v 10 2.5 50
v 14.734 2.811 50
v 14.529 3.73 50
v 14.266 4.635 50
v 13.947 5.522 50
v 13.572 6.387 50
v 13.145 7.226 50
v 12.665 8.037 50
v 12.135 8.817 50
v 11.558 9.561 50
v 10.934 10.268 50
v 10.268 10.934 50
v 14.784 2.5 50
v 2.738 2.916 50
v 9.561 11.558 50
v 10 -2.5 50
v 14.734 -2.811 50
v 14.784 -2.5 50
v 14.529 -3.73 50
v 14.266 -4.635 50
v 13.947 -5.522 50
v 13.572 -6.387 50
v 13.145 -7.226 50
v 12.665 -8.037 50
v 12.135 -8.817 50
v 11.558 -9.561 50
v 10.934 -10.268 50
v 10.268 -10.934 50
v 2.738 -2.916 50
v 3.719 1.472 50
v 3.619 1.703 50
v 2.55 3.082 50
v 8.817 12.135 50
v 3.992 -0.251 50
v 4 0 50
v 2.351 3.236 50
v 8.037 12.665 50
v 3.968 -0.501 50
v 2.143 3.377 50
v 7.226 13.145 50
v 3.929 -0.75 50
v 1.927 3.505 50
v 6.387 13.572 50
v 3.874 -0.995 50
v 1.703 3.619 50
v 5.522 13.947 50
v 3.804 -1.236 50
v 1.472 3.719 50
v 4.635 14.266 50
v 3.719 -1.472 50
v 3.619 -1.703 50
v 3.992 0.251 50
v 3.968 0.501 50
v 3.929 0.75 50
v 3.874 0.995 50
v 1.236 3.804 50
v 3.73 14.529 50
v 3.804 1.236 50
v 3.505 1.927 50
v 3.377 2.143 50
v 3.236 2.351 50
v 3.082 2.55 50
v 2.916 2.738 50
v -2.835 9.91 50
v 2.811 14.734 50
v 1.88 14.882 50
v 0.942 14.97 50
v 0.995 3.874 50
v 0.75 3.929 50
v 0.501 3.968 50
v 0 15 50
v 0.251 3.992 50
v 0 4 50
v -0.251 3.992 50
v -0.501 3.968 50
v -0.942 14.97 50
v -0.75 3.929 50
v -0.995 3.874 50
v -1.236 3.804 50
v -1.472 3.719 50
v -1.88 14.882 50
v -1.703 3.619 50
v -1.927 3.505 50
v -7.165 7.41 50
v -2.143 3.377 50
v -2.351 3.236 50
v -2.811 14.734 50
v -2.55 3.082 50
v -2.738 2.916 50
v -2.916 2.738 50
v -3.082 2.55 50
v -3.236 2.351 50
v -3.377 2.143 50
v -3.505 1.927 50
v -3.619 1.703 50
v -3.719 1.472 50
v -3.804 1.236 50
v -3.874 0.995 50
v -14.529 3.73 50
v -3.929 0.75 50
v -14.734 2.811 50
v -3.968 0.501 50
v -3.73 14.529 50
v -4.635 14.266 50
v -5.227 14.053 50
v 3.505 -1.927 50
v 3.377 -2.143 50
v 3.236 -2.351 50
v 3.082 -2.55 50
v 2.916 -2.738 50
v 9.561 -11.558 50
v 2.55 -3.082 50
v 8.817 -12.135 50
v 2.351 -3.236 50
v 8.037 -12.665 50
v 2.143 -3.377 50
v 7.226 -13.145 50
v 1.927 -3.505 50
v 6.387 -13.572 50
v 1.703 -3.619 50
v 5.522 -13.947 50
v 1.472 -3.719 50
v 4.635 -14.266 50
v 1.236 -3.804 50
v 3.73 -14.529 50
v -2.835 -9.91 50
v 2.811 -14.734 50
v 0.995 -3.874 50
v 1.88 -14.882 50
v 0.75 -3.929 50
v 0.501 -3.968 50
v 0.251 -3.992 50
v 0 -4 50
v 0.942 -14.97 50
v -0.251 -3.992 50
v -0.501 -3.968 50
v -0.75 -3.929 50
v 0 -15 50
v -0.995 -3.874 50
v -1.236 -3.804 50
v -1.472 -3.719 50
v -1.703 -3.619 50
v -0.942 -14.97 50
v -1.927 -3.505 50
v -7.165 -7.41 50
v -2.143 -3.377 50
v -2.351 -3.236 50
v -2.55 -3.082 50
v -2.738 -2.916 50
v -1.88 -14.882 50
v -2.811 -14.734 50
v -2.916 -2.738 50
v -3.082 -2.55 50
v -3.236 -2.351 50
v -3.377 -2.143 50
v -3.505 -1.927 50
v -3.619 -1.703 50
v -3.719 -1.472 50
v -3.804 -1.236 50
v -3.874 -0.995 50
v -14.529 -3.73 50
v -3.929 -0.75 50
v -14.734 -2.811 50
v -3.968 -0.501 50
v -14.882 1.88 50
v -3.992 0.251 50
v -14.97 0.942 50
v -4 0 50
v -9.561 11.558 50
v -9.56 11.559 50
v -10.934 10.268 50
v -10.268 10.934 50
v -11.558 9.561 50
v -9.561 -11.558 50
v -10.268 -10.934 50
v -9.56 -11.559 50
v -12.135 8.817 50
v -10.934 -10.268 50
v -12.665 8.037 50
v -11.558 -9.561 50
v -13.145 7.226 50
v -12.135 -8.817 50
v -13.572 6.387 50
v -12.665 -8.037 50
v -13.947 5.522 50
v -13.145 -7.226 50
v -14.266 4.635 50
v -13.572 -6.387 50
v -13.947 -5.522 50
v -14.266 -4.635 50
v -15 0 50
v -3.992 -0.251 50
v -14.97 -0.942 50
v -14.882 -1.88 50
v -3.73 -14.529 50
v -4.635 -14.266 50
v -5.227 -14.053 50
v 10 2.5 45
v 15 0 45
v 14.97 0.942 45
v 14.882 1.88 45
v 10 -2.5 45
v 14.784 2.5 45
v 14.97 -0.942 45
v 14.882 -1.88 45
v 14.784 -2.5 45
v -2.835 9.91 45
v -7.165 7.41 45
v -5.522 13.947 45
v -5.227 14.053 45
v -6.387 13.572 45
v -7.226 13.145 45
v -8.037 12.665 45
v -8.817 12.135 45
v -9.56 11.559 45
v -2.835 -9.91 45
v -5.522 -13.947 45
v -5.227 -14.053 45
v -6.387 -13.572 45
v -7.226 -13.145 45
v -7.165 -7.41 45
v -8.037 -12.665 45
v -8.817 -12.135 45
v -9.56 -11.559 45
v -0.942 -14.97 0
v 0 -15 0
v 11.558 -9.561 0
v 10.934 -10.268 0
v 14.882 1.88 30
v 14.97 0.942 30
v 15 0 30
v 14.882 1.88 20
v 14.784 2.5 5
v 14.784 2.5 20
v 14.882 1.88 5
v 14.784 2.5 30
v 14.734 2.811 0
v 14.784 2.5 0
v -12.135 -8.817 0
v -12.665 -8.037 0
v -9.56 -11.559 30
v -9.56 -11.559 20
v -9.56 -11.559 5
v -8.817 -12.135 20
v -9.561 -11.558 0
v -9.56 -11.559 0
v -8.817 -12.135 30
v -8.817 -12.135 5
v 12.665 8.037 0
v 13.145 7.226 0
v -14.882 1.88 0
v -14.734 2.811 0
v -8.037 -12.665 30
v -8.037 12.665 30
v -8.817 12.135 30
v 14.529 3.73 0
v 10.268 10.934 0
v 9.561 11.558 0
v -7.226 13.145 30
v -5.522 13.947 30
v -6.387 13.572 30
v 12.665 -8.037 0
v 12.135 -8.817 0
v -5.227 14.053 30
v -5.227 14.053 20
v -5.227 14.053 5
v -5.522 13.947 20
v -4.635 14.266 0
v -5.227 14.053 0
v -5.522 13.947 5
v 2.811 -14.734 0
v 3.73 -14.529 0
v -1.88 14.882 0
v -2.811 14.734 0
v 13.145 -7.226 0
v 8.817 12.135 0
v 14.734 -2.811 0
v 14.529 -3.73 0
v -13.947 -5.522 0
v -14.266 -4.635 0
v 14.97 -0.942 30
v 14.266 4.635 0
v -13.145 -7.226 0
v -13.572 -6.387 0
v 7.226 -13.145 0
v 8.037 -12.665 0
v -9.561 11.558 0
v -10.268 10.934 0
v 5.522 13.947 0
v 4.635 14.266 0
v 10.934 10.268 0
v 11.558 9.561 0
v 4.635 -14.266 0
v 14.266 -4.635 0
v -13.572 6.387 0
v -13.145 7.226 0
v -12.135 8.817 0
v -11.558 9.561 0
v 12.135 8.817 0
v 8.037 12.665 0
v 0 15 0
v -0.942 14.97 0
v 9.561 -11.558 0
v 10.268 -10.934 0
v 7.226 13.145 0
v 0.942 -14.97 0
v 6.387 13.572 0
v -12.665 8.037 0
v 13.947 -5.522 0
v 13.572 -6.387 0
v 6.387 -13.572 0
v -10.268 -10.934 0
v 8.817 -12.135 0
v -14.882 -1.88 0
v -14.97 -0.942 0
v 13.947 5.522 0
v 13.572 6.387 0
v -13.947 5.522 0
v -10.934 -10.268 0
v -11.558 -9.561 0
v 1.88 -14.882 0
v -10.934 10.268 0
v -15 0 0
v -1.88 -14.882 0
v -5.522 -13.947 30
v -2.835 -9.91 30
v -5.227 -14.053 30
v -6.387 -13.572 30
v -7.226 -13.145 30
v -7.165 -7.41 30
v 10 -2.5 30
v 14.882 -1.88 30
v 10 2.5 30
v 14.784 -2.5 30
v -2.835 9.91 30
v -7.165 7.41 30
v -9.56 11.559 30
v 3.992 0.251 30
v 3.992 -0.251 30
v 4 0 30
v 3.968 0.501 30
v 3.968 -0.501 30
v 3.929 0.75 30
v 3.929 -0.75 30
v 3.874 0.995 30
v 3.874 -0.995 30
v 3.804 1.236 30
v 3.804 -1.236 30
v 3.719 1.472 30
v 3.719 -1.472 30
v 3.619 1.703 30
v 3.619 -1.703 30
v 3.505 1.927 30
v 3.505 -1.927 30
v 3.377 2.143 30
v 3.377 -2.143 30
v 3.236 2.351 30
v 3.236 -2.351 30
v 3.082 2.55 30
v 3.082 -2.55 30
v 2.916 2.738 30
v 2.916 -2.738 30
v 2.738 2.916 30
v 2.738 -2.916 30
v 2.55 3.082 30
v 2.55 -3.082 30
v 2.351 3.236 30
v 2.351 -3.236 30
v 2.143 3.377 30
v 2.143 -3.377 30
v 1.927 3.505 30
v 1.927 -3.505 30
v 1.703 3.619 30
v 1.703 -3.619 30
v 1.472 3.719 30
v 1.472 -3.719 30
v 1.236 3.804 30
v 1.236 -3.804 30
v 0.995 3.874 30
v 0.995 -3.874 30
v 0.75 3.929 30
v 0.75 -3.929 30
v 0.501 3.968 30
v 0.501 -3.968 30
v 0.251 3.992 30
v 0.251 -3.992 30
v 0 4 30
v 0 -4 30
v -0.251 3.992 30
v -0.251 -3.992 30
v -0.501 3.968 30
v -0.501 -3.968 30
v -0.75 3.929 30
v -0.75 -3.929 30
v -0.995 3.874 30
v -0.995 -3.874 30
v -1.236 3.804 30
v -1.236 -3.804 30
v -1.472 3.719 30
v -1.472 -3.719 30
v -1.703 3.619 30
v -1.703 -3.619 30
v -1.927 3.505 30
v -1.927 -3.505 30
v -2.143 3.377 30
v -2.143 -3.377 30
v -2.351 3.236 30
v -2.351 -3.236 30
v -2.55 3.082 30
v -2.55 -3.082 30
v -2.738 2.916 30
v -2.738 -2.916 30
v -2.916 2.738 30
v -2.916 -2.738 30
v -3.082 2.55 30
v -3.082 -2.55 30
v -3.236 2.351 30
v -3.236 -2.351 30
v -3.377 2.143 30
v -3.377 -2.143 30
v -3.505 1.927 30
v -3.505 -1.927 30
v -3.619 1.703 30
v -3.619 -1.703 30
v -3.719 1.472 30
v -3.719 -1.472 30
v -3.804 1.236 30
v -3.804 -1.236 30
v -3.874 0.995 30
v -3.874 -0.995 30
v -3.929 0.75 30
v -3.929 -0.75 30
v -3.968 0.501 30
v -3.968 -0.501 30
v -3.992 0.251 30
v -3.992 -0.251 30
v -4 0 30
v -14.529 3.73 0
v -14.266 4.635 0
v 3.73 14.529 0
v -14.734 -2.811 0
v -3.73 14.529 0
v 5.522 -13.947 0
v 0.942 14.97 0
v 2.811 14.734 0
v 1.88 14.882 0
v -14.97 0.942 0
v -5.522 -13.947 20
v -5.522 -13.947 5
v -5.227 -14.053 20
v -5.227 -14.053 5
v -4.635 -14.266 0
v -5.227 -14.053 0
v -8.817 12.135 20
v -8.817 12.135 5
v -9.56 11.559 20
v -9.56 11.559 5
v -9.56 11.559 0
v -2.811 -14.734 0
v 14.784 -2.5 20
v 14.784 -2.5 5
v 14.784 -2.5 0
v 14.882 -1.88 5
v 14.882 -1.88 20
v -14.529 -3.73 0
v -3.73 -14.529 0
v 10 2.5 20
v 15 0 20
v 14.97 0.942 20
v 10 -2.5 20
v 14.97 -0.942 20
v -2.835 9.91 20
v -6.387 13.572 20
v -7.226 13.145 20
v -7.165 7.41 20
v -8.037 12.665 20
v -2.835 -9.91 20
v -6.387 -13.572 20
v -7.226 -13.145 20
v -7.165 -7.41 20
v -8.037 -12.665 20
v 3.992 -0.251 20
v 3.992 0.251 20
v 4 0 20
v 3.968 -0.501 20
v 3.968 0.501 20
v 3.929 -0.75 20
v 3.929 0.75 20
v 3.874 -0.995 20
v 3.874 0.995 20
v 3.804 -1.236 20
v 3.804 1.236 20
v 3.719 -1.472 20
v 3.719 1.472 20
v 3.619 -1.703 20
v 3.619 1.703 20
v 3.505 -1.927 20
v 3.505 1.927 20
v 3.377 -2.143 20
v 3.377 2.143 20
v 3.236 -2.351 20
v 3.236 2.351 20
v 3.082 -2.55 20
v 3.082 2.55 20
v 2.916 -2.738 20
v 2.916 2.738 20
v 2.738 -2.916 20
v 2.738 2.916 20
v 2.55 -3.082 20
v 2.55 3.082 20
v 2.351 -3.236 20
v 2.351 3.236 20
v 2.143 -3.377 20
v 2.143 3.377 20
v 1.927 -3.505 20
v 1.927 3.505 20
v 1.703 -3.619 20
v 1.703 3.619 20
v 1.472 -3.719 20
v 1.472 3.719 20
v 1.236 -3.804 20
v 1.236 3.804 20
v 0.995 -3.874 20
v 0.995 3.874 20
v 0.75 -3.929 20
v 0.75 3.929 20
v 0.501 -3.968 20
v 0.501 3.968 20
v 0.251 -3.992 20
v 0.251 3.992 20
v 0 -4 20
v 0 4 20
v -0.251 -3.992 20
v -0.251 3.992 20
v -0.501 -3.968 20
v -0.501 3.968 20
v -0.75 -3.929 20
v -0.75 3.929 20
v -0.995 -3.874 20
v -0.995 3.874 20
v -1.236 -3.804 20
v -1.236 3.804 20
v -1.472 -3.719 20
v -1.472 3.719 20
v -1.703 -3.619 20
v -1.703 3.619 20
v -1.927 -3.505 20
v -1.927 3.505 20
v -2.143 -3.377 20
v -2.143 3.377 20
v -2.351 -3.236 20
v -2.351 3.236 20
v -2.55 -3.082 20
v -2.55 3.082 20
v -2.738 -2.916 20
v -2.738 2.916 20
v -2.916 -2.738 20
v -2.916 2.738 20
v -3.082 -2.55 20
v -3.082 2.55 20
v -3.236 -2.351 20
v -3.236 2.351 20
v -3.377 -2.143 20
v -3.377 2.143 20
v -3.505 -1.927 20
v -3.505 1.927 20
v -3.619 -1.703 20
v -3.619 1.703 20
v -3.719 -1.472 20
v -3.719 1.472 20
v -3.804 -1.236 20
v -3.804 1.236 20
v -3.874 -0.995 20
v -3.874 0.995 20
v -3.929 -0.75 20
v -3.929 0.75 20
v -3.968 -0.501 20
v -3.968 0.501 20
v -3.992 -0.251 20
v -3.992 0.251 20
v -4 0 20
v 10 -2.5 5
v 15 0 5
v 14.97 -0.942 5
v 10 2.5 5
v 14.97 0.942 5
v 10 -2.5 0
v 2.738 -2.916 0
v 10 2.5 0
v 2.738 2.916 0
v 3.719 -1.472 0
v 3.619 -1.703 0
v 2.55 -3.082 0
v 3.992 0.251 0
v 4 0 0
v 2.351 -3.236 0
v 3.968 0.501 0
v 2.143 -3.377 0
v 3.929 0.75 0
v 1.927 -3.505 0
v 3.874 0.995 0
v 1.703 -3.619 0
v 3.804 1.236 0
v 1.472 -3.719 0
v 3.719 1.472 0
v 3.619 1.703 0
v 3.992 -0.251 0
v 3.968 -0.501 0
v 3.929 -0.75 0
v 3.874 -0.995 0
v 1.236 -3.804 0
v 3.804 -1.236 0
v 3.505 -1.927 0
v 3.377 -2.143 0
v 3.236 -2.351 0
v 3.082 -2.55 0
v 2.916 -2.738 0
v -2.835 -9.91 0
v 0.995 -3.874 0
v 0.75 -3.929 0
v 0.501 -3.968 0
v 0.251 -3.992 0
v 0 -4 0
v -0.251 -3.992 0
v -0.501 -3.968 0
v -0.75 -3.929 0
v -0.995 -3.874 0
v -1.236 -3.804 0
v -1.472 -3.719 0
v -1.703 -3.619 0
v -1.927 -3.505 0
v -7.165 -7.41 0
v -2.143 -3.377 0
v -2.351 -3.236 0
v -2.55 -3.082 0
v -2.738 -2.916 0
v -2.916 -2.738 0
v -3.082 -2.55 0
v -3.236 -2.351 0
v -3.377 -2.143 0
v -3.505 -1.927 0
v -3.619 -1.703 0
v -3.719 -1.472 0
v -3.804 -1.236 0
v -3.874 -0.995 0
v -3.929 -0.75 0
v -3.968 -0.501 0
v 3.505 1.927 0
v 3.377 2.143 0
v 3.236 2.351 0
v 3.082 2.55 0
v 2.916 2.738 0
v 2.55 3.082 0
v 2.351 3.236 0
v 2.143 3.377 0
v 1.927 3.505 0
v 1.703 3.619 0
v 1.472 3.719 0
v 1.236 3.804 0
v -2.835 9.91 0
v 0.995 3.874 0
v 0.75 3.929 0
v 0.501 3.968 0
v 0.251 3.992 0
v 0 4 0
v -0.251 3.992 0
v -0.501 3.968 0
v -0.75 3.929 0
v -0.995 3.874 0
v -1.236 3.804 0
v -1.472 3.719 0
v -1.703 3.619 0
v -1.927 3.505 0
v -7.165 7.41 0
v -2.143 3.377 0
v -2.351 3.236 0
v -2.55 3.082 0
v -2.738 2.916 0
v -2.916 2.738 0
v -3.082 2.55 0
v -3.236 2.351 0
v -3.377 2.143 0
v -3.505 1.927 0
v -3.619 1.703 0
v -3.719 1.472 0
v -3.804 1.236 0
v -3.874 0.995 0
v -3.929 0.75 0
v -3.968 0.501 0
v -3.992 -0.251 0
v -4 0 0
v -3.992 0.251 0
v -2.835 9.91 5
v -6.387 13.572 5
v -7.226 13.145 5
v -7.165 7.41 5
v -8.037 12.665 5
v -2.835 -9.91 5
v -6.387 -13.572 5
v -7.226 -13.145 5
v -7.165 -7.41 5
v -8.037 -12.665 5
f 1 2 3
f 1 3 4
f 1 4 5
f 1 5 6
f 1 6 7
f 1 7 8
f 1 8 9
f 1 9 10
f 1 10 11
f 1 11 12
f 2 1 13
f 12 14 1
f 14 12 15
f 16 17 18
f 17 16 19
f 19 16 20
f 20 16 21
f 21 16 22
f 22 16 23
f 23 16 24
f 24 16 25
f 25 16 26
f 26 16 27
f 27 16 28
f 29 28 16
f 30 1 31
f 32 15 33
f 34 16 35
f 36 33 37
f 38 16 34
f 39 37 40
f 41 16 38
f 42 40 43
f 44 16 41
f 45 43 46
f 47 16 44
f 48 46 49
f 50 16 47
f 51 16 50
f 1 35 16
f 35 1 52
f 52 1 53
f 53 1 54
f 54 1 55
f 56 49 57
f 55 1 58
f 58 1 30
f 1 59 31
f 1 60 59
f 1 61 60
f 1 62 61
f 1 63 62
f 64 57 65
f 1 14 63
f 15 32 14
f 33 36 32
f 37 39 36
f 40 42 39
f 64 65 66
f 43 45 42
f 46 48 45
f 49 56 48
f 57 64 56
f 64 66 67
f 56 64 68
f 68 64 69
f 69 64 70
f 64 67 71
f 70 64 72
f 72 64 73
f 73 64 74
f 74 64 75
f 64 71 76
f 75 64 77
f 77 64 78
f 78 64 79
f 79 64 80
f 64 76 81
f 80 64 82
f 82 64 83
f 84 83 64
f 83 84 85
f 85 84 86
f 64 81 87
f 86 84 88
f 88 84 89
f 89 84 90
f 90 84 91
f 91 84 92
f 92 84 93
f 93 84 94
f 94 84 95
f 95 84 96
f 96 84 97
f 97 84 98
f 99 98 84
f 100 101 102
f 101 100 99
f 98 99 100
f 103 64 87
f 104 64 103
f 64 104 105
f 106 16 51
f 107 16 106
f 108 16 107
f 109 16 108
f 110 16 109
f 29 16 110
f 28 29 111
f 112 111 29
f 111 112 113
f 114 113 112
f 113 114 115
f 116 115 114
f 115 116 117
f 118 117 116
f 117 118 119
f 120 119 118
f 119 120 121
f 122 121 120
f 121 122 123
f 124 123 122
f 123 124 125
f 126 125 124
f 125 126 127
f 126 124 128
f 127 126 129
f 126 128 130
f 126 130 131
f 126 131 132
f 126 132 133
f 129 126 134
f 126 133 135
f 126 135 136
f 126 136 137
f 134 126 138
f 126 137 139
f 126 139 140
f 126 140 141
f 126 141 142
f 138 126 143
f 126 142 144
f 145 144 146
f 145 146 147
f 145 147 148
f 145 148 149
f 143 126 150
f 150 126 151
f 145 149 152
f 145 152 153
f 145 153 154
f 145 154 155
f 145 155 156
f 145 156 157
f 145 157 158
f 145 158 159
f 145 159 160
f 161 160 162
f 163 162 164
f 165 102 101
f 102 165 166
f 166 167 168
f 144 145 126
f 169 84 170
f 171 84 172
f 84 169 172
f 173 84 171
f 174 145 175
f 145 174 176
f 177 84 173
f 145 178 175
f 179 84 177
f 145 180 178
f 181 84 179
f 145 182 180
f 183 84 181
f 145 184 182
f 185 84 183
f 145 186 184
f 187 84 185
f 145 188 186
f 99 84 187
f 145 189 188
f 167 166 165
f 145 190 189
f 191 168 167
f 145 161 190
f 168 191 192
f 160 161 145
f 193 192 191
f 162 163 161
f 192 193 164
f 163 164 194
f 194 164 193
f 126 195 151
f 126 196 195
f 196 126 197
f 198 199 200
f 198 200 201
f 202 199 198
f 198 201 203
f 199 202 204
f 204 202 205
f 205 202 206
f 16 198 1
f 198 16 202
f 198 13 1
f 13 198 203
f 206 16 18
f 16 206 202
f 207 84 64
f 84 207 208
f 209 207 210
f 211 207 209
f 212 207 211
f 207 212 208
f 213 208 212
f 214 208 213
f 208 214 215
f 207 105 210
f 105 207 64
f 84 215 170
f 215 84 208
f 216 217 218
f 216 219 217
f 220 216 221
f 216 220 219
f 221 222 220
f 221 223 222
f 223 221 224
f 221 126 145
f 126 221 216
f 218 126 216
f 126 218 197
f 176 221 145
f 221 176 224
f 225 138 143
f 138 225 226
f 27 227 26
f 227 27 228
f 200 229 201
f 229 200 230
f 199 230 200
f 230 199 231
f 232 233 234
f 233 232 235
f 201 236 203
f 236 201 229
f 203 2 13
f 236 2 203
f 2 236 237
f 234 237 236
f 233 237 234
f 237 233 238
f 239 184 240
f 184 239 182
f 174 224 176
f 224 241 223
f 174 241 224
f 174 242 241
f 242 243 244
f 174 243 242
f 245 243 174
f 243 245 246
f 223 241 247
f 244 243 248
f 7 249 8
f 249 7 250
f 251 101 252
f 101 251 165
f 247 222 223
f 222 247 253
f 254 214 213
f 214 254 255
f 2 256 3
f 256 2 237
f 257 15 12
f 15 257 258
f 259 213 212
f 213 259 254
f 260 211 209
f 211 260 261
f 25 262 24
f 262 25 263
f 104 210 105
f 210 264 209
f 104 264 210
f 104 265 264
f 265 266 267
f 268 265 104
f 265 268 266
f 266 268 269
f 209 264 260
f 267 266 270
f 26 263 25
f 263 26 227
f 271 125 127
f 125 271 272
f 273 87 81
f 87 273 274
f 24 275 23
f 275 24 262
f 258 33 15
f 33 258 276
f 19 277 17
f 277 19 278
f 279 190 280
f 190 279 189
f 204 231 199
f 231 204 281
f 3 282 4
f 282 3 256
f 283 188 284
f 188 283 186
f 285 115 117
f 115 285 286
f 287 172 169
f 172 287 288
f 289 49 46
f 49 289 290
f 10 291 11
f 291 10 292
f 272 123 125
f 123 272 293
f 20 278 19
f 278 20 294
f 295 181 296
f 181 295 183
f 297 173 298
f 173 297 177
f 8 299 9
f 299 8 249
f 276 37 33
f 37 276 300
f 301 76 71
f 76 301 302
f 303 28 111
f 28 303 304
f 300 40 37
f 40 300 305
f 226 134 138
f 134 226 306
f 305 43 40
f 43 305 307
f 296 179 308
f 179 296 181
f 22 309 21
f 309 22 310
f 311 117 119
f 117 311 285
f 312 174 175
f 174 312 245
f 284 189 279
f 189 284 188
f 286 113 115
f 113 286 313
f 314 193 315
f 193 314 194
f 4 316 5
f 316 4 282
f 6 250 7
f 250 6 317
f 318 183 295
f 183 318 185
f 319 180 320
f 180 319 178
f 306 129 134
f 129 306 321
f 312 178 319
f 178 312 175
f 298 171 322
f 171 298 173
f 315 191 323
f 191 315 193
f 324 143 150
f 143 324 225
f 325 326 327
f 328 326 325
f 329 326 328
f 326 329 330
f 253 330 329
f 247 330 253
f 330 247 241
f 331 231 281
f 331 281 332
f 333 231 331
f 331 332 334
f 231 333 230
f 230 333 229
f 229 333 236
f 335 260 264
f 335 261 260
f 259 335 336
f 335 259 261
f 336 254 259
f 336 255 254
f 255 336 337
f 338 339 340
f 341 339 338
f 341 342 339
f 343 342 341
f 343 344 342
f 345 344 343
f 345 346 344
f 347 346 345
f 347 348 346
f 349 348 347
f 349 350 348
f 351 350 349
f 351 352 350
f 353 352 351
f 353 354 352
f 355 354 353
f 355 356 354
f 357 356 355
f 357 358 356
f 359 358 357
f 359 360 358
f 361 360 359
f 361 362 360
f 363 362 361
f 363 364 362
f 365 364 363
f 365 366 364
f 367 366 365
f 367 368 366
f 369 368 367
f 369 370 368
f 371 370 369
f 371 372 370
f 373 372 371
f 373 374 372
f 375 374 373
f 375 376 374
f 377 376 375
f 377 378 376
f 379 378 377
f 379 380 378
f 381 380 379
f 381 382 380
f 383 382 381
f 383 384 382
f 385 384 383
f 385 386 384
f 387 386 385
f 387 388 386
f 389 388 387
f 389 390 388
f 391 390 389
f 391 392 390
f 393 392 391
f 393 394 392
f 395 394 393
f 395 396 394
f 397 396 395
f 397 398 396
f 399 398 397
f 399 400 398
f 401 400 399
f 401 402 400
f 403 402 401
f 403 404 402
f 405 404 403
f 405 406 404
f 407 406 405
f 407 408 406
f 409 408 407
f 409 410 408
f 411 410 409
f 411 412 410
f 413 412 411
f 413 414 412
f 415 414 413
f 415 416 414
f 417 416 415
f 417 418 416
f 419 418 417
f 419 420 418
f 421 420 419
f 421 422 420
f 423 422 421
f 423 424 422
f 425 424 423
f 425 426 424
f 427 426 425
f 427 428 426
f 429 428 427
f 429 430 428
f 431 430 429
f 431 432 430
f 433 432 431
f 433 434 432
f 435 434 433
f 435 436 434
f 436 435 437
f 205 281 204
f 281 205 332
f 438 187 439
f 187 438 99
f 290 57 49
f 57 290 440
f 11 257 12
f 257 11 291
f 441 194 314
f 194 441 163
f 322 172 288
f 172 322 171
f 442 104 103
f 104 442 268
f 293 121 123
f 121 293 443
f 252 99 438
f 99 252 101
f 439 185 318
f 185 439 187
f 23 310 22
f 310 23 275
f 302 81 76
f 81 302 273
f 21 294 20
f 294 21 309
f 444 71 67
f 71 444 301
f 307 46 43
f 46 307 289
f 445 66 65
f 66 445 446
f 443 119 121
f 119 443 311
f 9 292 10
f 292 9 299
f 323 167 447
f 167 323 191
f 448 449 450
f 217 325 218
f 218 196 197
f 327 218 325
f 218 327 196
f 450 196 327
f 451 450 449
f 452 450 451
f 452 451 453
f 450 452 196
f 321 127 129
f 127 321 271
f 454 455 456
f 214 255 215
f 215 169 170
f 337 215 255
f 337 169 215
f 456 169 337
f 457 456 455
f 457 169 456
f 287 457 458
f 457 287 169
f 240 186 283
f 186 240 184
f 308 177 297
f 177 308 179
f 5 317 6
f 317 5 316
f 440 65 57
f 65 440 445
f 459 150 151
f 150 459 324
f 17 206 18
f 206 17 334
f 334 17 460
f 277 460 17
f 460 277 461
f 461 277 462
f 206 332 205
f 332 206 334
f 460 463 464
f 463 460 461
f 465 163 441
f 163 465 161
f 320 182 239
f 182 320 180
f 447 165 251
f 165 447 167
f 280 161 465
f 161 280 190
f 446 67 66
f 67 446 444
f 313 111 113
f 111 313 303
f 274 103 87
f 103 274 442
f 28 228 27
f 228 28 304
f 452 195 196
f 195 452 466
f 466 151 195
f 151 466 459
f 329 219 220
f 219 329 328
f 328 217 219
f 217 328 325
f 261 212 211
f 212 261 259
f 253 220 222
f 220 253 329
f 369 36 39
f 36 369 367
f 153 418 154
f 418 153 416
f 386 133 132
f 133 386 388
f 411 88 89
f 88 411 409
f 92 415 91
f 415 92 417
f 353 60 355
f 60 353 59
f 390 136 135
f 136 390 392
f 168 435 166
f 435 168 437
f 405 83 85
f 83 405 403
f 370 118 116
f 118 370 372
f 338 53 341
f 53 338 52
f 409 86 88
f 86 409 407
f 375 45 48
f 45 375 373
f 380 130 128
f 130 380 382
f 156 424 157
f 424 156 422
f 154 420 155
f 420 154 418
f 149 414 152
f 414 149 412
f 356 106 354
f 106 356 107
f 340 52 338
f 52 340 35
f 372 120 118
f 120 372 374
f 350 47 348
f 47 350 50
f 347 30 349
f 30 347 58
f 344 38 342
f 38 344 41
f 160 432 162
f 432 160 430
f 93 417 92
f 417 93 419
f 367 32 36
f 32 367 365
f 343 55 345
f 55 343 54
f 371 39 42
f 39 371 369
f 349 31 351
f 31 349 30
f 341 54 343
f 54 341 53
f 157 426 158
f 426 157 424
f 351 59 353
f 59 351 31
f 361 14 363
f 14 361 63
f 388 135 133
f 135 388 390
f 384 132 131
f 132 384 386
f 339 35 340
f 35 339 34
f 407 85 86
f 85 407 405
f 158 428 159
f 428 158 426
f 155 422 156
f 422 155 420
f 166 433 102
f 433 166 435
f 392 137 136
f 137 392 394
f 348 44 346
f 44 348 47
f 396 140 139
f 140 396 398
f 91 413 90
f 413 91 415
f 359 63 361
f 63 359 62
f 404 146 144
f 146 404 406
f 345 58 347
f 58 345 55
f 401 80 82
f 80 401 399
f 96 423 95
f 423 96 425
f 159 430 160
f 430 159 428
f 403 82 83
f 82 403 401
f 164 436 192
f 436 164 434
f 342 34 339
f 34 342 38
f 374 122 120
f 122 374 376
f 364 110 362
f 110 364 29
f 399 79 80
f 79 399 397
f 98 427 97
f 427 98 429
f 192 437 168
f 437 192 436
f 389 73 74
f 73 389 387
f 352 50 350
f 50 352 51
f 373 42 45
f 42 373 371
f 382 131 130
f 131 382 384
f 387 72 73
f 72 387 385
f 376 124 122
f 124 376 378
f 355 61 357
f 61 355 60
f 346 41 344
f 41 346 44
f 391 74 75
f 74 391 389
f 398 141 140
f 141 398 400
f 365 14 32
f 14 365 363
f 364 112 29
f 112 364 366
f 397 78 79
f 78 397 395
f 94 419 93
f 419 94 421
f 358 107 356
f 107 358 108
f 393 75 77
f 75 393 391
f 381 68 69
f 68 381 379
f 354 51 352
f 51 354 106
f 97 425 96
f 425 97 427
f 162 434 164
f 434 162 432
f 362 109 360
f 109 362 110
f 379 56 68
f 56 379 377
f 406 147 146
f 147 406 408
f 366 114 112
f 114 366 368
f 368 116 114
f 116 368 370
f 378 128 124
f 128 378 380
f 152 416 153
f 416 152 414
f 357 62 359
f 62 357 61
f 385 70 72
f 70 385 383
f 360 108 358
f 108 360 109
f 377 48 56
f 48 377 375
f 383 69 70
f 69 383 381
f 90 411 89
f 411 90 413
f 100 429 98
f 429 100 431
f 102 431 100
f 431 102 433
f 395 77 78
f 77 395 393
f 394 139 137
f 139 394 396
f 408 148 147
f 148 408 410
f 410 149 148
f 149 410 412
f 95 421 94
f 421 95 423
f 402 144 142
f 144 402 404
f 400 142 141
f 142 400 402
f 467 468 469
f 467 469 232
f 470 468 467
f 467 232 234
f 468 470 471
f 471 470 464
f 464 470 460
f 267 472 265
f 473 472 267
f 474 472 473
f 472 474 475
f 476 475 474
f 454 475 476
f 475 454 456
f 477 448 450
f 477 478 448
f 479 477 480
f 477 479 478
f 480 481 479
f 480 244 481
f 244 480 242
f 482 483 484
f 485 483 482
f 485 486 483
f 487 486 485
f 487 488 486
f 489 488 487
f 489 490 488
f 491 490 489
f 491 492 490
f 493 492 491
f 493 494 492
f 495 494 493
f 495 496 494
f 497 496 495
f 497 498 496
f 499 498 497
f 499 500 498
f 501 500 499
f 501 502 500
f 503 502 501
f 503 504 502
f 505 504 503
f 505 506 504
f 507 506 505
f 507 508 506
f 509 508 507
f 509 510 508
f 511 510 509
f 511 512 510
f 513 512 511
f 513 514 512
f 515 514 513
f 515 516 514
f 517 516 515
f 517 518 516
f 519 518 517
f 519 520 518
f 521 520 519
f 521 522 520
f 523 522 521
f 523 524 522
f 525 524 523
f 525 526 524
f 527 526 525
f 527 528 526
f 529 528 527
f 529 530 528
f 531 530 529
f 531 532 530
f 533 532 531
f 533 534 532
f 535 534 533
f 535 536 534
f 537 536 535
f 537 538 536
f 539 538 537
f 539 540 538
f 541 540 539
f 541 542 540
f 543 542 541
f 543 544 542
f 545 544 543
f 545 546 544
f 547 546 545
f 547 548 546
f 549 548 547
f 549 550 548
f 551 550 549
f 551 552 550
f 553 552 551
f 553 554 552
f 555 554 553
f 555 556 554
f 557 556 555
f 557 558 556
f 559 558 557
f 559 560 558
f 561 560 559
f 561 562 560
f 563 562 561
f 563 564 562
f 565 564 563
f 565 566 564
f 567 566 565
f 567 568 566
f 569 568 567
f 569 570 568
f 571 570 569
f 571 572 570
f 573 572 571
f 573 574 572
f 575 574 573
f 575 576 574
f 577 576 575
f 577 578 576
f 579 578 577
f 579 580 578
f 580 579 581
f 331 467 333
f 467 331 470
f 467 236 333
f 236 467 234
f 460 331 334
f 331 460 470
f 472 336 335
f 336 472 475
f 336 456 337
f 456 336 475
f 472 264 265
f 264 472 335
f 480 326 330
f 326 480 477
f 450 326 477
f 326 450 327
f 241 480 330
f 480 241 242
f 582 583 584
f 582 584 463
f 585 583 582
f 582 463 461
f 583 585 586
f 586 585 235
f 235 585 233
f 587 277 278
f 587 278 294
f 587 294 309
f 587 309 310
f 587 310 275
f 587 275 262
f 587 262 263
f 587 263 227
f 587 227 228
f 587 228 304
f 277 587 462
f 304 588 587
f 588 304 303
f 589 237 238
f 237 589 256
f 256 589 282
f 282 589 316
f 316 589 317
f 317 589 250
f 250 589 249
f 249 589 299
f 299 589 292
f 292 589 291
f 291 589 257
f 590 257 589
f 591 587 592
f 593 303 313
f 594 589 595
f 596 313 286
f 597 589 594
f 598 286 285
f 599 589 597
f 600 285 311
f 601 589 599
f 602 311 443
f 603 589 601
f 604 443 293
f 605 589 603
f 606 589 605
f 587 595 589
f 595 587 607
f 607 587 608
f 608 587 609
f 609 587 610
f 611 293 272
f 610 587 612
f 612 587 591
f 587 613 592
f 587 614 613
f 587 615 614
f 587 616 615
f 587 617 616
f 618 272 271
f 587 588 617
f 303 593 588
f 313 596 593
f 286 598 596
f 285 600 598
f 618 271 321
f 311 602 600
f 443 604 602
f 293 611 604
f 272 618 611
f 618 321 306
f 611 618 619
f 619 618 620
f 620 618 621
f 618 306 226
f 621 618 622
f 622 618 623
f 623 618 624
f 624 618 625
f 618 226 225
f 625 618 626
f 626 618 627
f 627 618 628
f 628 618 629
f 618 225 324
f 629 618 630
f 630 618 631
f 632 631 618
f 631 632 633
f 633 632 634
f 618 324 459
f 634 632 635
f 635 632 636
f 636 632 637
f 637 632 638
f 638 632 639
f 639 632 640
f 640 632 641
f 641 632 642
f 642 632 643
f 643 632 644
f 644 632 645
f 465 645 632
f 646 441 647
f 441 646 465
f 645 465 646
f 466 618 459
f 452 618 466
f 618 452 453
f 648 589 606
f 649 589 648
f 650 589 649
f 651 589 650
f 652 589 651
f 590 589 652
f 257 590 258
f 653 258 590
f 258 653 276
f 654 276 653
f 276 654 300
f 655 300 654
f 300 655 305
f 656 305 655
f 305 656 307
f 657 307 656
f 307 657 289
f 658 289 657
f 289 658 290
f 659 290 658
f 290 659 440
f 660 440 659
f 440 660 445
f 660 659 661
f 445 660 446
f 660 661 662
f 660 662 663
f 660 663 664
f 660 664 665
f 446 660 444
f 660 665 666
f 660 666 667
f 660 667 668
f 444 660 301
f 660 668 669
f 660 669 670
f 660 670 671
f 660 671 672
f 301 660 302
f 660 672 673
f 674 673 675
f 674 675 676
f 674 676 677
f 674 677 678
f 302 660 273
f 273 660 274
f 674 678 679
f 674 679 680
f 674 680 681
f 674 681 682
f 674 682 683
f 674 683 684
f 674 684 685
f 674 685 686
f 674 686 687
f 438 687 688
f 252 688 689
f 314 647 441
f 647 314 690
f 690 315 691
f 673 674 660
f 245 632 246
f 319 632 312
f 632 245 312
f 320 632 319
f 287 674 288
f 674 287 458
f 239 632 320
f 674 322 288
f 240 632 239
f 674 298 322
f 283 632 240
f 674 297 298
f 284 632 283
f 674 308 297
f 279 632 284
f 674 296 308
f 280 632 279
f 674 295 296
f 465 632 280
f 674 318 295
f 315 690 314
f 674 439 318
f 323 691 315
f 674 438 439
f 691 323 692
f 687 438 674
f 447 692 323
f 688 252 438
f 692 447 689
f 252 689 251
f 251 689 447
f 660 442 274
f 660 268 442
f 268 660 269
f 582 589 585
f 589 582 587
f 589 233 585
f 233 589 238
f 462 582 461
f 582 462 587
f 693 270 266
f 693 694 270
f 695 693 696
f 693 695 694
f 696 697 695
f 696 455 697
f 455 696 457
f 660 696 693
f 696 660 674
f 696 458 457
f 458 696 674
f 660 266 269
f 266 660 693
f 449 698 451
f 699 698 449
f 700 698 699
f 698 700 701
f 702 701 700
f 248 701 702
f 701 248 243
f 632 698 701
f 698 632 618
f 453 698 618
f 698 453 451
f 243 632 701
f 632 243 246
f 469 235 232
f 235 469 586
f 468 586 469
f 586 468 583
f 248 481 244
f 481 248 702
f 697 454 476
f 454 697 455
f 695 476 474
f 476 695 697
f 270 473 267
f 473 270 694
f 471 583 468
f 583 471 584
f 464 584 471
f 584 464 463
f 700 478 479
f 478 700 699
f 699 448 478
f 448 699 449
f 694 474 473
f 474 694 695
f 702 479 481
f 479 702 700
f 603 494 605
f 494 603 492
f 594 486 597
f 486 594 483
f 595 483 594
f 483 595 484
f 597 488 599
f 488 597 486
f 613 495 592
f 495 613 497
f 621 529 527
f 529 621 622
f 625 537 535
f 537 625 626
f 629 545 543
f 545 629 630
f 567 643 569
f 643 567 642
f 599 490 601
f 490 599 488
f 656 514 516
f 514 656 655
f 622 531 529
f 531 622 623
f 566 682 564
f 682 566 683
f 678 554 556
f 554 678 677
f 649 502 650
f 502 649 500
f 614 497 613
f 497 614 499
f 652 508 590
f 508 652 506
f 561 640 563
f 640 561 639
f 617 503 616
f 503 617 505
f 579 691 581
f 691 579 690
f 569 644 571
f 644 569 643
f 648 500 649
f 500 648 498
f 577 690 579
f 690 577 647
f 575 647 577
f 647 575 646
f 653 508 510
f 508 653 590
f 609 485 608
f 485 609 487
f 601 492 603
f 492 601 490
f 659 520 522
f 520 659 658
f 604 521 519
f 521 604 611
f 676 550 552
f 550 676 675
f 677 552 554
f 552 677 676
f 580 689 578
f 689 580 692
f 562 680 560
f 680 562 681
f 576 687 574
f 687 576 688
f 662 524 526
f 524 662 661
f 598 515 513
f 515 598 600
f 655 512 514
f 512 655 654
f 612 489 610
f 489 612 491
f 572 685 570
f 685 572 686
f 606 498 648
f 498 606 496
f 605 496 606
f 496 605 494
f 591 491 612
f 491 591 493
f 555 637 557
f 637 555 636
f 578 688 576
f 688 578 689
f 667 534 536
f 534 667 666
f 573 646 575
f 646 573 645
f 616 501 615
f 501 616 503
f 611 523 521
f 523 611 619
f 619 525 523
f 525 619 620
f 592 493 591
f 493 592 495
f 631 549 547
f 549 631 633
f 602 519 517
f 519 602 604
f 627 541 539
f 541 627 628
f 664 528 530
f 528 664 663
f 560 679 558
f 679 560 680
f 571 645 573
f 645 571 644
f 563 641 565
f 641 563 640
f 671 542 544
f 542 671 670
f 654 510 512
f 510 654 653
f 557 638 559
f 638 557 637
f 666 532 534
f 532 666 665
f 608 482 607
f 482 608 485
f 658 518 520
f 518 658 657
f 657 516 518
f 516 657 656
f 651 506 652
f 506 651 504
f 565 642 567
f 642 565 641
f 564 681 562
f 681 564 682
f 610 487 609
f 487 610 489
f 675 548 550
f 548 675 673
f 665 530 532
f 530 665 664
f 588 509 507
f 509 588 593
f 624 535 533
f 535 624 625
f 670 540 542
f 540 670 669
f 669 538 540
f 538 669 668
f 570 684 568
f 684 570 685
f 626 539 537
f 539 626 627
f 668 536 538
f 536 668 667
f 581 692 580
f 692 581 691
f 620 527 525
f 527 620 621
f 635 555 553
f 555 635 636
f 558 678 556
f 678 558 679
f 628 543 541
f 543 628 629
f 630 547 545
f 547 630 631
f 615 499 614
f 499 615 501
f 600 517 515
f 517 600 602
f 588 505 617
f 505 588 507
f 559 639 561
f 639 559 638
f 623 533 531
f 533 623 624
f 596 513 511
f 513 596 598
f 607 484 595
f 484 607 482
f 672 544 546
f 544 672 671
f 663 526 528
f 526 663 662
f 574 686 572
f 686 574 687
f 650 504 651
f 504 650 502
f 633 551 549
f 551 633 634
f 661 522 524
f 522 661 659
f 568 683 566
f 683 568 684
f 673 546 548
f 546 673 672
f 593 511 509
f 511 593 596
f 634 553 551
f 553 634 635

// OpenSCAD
$fn = 100; // Smoothness

// Parameters
hub_diameter = 30;
hub_length = 20;
insert_length = 10;
shaft_hole_diameter = 8;
jaw_width = 5;
jaw_depth = 5;
jaw_count = 3;

// Main assembly
module coupling() {
    translate([0, 0, hub_length + insert_length])
        left_clamp_hub();
    translate([0, 0, hub_length])
        central_jaw_insert();
    right_clamp_hub();
}

// Left clamp hub
module left_clamp_hub() {
    difference() {
        cylinder(d=hub_diameter, h=hub_length);
        translate([0, 0, -1])
            cylinder(d=shaft_hole_diameter, h=hub_length + 2);
        // Jaw slots
        for (i = [0 : 360/jaw_count : 360 - 360/jaw_count]) {
            rotate([0, 0, i])
                translate([hub_diameter/2 - jaw_depth, -jaw_width/2, hub_length - jaw_depth])
                    cube([jaw_depth, jaw_width, jaw_depth]);
        }
    }
}

// Right clamp hub
module right_clamp_hub() {
    difference() {
        cylinder(d=hub_diameter, h=hub_length);
        translate([0, 0, -1])
            cylinder(d=shaft_hole_diameter, h=hub_length + 2);
        // Jaw slots
        for (i = [0 : 360/jaw_count : 360 - 360/jaw_count]) {
            rotate([0, 0, i])
                translate([hub_diameter/2 - jaw_depth, -jaw_width/2, 0])
                    cube([jaw_depth, jaw_width, jaw_depth]);
        }
    }
}

// Central jaw insert
module central_jaw_insert() {
    difference() {
        cylinder(d=hub_diameter, h=insert_length);
        // Remove material between jaws
        for (i = [0 : 360/jaw_count : 360 - 360/jaw_count]) {
            rotate([0, 0, i])
                translate([hub_diameter/2 - jaw_depth, -jaw_width/2, 0])
                    cube([jaw_depth, jaw_width, insert_length]);
        }
    }
}

// Render the full coupling
coupling();
